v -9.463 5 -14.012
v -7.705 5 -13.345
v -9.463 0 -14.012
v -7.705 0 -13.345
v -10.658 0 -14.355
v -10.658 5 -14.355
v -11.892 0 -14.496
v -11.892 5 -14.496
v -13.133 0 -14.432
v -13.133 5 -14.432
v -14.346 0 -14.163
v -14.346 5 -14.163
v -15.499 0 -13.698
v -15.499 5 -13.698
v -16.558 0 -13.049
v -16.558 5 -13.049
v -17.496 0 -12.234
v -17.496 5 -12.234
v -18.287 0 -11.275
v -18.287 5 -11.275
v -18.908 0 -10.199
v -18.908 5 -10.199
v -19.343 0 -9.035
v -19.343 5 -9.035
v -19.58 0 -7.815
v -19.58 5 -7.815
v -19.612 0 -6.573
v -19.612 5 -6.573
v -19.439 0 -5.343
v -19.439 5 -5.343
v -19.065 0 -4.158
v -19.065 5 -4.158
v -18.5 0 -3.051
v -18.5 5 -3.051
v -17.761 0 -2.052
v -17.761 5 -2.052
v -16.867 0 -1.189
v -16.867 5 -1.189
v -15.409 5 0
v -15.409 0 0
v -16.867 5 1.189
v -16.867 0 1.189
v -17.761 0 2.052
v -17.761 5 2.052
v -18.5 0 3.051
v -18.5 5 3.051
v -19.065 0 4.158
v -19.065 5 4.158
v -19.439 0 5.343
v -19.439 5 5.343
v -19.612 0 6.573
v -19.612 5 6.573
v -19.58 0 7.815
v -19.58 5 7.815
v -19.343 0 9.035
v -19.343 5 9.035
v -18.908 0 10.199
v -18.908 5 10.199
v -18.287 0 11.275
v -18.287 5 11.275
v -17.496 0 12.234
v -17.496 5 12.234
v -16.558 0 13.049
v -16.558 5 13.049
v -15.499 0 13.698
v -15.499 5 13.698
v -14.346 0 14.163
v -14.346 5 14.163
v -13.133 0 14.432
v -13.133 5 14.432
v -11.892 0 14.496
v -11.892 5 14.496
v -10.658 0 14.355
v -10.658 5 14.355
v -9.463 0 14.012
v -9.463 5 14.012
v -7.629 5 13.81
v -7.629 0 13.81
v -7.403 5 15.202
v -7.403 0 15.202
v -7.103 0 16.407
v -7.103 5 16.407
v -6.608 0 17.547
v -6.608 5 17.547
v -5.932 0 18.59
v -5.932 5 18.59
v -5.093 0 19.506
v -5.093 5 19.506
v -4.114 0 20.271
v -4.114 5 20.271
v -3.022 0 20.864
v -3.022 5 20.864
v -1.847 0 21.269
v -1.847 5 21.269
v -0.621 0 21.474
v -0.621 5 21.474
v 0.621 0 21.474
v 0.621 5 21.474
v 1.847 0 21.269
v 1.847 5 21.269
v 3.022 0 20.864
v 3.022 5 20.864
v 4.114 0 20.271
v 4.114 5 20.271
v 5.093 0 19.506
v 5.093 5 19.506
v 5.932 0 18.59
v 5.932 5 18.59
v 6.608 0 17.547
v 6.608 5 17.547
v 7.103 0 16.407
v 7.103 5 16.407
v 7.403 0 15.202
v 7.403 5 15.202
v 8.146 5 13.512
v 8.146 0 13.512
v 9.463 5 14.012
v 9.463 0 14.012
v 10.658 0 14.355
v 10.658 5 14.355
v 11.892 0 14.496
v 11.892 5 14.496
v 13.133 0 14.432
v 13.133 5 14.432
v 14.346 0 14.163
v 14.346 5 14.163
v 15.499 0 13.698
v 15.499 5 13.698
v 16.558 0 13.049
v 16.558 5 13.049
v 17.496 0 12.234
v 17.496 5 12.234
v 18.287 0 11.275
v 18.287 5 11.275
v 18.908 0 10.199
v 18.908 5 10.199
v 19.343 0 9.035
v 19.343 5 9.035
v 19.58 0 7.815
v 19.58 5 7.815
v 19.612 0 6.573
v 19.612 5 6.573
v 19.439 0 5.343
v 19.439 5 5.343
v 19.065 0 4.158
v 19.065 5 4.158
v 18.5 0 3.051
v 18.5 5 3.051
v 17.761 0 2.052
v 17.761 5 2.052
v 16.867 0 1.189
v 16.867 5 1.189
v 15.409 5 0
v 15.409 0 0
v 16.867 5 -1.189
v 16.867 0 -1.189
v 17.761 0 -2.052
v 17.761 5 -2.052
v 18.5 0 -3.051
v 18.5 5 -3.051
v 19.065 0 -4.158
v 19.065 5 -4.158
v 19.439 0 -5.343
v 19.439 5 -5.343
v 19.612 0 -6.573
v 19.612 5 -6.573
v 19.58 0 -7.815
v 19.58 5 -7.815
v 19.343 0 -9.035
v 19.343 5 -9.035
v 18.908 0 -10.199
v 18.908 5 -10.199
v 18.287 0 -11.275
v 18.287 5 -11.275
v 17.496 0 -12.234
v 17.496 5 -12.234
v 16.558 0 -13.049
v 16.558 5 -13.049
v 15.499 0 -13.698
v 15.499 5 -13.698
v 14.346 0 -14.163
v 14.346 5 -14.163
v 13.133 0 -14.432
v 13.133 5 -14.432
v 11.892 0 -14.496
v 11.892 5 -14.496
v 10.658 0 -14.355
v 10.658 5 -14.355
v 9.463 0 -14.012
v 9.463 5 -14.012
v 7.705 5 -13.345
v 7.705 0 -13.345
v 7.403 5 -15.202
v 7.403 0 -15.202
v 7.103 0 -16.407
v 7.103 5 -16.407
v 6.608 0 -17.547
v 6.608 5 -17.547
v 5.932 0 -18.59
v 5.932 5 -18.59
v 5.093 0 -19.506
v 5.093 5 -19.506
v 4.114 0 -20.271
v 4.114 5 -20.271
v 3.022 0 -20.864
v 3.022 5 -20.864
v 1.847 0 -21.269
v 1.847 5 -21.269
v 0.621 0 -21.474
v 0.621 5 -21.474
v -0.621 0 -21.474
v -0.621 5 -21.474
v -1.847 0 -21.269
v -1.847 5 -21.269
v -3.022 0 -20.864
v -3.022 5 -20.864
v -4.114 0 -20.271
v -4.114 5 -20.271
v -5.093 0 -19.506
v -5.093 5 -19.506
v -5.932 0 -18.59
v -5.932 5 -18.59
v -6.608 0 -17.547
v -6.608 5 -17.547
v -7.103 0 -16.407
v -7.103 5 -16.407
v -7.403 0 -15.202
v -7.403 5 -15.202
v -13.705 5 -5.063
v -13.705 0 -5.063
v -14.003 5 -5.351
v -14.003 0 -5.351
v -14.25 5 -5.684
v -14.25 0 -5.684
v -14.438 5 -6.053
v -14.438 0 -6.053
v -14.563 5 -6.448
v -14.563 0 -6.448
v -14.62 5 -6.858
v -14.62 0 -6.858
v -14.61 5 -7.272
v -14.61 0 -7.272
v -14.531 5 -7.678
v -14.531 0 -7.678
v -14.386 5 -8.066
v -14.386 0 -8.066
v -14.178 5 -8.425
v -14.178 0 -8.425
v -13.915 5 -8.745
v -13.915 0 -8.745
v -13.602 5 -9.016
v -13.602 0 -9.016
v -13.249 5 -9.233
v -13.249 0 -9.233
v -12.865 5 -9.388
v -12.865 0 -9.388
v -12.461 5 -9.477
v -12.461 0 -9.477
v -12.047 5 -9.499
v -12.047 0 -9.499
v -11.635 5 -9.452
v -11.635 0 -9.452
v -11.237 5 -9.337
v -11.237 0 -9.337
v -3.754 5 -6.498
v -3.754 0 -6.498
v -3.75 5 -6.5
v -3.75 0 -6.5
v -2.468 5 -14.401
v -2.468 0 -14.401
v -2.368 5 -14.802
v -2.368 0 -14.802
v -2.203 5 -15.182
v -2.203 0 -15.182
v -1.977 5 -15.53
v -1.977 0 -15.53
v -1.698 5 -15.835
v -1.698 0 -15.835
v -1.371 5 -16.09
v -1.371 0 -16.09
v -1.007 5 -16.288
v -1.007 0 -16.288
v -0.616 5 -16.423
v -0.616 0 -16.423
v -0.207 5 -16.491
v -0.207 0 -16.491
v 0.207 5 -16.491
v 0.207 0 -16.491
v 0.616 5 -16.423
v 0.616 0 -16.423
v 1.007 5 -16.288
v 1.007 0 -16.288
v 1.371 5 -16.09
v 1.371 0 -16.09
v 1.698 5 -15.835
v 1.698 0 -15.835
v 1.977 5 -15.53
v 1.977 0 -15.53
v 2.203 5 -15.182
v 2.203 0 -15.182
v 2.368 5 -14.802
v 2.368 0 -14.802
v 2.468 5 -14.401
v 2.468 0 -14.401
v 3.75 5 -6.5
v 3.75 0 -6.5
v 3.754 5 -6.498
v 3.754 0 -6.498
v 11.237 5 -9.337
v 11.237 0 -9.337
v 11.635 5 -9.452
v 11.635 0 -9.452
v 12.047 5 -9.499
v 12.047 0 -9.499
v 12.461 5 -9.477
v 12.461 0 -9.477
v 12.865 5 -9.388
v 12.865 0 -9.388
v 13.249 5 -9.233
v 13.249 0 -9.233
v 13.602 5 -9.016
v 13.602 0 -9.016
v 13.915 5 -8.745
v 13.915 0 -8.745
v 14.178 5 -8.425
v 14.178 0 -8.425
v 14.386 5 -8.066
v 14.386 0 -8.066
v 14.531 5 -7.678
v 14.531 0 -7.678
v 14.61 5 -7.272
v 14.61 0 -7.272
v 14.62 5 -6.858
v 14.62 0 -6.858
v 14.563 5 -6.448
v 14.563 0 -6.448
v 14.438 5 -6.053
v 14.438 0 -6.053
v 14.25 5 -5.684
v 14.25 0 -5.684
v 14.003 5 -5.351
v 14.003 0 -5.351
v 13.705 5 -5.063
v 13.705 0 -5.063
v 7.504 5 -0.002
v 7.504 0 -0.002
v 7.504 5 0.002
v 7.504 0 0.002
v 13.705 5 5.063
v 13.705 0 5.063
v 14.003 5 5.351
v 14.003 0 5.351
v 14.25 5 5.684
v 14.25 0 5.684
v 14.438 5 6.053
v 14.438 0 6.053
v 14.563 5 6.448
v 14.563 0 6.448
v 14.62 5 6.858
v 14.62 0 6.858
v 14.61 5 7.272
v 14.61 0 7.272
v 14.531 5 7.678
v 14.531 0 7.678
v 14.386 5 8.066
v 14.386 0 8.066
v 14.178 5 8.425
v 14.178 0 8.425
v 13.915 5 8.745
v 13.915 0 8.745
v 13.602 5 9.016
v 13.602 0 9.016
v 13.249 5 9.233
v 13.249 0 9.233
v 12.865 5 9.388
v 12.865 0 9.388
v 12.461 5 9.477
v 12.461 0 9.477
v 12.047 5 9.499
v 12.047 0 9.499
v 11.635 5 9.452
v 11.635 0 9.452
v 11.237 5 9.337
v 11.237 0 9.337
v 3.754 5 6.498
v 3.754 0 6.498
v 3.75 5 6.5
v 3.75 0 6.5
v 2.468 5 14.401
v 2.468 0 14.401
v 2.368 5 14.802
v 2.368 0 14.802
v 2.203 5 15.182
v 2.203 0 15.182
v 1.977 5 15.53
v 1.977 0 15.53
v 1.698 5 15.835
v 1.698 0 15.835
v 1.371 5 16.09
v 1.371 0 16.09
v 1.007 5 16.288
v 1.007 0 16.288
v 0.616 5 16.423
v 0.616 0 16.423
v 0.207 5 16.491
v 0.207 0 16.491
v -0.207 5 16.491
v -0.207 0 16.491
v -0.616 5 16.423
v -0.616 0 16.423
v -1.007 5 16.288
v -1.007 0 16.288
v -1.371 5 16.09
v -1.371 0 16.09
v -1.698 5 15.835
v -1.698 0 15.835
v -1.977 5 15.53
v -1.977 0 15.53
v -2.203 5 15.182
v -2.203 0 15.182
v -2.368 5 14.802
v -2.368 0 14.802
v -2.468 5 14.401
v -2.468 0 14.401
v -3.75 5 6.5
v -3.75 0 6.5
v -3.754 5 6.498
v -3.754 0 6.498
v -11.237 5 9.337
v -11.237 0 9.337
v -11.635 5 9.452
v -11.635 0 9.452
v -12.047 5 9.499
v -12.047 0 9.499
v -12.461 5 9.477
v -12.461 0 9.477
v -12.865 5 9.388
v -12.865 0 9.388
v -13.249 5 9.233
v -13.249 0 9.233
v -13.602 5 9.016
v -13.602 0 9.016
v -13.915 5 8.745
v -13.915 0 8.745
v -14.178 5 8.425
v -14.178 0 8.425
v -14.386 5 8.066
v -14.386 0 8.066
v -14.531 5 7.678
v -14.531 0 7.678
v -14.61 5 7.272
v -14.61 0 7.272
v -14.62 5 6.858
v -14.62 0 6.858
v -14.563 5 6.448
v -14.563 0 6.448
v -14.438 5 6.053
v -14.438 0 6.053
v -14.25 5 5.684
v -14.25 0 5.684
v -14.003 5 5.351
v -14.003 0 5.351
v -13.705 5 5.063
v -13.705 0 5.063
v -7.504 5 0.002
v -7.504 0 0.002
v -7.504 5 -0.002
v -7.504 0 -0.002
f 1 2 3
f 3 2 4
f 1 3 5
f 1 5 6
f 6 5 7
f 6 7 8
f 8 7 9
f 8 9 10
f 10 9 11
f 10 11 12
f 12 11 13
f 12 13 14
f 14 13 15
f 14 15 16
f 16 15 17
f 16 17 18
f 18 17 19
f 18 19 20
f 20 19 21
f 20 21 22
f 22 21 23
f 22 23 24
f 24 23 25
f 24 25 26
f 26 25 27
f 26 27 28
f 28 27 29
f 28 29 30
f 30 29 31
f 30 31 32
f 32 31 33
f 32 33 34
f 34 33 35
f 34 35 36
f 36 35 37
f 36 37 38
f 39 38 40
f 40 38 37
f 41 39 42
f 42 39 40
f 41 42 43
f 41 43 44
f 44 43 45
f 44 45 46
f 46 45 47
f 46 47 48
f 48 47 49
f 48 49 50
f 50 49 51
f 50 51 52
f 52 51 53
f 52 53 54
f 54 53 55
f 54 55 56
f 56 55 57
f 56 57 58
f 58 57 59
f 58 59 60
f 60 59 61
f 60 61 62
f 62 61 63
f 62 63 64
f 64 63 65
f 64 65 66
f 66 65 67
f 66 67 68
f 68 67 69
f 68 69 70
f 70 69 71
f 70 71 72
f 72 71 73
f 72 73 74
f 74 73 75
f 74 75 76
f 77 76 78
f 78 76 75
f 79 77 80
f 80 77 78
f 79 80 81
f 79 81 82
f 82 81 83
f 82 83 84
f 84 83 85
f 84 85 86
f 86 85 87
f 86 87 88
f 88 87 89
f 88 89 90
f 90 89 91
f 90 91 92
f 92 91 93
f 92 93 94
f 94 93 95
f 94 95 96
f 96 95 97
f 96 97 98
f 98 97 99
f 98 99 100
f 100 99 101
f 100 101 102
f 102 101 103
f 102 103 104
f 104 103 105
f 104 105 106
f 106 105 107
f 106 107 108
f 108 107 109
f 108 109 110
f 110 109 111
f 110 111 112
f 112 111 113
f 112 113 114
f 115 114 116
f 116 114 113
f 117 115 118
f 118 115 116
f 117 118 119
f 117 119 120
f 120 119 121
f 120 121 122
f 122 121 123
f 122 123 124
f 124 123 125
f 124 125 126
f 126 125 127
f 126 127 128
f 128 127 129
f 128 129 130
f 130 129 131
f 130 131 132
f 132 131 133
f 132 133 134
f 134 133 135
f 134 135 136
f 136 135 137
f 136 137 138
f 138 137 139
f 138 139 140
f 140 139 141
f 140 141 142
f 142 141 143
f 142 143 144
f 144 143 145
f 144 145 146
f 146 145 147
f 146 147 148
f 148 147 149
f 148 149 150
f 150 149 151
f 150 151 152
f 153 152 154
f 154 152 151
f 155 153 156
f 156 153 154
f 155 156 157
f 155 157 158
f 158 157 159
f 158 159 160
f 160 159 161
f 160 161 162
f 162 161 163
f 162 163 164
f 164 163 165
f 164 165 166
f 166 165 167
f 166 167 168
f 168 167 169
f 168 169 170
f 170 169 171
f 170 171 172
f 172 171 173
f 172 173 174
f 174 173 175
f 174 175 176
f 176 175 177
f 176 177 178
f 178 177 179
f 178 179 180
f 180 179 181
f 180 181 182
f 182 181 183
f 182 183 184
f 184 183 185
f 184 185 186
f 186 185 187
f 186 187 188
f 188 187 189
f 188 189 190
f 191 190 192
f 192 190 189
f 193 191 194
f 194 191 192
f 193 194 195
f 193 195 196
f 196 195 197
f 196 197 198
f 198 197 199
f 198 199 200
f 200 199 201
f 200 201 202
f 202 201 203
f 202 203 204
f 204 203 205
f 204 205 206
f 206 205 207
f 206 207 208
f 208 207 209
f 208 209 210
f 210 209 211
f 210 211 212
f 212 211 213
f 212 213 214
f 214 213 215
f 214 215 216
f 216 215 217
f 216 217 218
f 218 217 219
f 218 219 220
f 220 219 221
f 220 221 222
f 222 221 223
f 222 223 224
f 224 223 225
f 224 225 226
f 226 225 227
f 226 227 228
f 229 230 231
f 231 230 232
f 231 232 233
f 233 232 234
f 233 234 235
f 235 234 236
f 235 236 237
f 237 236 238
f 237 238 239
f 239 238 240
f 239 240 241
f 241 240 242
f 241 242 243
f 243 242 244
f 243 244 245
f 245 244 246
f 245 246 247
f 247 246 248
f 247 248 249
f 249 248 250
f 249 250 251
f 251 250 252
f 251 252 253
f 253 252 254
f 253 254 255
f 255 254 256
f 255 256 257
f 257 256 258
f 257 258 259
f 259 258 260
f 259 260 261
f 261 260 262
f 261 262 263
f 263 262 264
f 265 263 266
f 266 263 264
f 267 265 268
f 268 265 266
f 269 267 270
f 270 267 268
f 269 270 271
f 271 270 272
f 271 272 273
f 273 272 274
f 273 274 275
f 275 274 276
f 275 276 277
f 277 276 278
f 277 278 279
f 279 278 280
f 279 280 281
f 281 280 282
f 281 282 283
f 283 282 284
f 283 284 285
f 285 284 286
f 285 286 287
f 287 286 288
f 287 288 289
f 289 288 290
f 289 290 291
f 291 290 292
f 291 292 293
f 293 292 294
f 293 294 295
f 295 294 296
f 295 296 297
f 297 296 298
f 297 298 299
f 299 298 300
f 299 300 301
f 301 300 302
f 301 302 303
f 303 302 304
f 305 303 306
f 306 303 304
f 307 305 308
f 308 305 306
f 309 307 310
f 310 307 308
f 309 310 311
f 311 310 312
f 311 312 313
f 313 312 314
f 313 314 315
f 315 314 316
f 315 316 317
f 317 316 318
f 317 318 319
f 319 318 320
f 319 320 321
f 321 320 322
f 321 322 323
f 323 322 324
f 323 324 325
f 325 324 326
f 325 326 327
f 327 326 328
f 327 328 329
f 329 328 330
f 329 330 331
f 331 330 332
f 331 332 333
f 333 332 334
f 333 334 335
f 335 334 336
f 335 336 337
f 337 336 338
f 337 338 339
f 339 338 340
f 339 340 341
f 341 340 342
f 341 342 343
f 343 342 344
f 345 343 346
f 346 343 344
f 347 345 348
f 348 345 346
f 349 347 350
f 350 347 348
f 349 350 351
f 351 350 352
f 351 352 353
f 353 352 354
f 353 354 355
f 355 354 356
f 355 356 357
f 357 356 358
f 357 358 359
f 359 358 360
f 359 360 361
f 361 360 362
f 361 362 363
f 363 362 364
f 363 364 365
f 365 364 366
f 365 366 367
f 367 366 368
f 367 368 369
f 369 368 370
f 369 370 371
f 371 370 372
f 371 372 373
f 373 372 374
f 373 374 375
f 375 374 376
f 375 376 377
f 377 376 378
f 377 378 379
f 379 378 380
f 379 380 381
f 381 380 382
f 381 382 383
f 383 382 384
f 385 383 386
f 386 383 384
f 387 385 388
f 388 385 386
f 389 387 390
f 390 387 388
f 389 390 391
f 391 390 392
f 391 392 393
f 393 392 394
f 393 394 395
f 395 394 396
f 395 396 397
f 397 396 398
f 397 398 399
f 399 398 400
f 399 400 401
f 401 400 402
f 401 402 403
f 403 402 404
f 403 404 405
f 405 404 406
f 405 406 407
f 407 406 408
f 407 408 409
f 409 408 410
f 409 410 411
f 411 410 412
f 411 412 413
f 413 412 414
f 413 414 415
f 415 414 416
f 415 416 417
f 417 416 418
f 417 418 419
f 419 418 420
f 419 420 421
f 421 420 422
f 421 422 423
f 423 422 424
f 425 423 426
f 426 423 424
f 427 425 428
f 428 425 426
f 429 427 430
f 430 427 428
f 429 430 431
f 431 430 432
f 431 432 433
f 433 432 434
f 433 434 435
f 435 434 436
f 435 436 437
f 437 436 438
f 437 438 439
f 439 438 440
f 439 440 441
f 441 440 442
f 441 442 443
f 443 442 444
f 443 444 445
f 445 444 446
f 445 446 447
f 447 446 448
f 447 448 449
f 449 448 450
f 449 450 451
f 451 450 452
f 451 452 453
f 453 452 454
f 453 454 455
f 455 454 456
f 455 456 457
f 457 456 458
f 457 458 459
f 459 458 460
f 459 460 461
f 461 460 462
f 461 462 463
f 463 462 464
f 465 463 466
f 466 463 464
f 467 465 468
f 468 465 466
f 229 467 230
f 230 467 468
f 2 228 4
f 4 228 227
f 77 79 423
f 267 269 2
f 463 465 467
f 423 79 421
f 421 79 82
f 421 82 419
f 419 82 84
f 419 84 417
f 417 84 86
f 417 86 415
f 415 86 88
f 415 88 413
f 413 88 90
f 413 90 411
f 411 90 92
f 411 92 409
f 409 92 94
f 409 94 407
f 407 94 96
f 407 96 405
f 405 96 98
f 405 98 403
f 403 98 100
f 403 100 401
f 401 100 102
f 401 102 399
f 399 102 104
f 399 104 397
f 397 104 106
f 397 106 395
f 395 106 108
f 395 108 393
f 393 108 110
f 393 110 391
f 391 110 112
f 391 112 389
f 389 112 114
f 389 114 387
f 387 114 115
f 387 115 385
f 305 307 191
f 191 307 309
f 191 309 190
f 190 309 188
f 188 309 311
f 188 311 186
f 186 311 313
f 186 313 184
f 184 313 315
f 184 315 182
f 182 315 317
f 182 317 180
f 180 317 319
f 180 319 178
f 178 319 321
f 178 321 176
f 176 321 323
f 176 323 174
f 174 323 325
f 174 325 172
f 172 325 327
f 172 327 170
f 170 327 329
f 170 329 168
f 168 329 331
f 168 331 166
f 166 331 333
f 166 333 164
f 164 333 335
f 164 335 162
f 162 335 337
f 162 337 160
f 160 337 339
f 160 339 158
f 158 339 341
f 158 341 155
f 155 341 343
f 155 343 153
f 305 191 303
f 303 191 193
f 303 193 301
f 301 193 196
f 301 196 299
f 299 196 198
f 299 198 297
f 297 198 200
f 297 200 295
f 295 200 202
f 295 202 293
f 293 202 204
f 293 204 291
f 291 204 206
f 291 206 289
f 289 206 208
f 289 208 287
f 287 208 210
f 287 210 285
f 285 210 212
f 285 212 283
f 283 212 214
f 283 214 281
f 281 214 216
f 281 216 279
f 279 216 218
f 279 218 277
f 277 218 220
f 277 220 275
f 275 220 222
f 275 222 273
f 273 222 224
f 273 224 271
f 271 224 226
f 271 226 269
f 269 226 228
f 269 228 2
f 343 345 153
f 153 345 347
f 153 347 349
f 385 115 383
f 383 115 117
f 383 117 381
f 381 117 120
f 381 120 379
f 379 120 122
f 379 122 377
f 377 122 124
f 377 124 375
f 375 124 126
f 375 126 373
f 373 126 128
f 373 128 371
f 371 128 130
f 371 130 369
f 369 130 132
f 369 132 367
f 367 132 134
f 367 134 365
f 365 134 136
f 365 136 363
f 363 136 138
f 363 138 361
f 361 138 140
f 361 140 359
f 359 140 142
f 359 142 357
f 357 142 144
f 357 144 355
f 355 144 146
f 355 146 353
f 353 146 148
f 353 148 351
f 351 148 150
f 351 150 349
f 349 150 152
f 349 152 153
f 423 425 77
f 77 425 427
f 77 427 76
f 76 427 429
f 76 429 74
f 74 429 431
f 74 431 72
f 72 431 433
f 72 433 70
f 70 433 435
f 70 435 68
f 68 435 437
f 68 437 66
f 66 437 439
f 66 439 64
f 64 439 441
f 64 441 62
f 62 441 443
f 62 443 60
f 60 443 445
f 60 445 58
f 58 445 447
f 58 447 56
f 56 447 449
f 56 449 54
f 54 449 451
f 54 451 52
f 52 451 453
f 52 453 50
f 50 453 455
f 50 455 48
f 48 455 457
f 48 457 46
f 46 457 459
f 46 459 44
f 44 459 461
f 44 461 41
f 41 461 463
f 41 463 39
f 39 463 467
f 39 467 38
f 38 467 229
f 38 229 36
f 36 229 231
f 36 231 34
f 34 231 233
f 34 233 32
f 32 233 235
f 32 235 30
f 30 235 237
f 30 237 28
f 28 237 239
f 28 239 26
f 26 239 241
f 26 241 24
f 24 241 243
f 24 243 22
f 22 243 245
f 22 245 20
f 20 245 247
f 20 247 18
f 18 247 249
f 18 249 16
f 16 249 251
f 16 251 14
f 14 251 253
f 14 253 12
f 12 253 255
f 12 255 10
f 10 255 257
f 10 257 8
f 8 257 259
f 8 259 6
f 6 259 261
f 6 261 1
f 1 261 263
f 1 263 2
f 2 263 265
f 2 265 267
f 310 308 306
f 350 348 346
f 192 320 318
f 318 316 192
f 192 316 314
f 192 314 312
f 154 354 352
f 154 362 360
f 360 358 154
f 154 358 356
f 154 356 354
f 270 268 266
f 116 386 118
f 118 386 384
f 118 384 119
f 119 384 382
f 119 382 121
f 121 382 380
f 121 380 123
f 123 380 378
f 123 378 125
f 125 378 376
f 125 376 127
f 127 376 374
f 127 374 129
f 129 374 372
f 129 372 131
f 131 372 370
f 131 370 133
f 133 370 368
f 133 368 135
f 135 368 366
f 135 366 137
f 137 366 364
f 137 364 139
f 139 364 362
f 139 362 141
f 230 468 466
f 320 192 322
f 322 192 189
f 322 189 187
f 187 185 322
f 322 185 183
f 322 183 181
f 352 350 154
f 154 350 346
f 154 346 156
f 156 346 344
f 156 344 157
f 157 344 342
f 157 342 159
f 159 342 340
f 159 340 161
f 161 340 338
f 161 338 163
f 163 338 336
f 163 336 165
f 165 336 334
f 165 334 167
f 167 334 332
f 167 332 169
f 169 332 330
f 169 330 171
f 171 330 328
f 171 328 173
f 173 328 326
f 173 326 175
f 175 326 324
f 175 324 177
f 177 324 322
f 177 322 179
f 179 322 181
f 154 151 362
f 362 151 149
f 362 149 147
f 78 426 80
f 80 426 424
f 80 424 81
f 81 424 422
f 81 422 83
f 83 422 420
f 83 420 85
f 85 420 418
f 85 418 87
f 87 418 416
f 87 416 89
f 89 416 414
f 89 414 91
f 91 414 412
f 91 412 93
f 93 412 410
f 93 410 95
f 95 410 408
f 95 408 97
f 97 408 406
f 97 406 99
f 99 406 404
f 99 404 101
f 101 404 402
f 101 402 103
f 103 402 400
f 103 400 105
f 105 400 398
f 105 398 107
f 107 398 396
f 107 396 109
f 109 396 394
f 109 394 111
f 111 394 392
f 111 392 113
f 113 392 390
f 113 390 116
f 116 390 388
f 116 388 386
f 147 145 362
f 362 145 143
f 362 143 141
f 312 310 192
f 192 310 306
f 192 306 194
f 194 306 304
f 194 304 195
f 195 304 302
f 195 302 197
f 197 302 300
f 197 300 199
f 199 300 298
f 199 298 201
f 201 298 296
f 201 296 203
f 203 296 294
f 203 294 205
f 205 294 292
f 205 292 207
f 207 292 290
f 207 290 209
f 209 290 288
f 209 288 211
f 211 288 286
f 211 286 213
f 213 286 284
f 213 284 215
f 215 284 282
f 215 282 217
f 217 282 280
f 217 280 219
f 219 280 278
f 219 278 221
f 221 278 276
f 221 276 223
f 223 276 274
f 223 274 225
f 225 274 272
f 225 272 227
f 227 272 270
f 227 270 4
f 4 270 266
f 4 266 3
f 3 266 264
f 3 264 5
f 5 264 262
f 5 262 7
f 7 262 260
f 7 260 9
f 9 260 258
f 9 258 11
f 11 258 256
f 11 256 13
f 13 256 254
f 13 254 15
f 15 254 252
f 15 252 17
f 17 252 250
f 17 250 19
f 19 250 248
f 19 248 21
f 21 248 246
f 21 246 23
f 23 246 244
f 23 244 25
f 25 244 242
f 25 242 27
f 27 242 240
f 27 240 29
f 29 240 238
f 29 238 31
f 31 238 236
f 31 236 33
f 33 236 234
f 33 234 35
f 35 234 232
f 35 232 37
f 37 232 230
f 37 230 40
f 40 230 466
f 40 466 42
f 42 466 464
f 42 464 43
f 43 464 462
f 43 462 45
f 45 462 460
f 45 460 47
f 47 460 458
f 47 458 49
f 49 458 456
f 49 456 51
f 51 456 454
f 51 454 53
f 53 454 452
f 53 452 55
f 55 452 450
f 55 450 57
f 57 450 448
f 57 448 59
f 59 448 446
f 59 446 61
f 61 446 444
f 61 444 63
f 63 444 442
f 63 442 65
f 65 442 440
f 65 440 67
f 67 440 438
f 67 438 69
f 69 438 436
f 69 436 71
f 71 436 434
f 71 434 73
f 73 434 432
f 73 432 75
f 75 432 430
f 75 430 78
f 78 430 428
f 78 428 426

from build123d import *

# Parameters (mm, degrees)
BOSS_EXTRUDE1_DEPTH = 5


with BuildPart() as part:
    # Sketch1 → Boss-Extrude1 (new body)
    with BuildSketch(Plane(origin=(0, 0, 0), x_dir=(1, 0, 0), z_dir=(0, 1, 0))):
        with BuildLine():
            Line((-9.463376853, 14.012074716), (-7.70451588, 13.344612952))
            Line((-7.70451588, 13.344612952), (-7.403124237, 15.201562119))
            ThreePointArc((-7.403124237, 15.201562119), (0, 21.5), (7.403124237, 15.201562119))
            Line((7.403124237, 15.201562119), (7.70451588, 13.344612952))
            Line((7.70451588, 13.344612952), (9.463376853, 14.012074716))
            ThreePointArc((9.463376853, 14.012074716), (18.619546181, 10.75), (16.866501091, 1.189487402))
            Line((16.866501091, 1.189487402), (15.40903176, 0))
            Line((15.40903176, 0), (16.866501091, -1.189487402))
            ThreePointArc((16.866501091, -1.189487402), (18.619546181, -10.75), (9.463376853, -14.012074716))
            Line((9.463376853, -14.012074716), (8.145790319, -13.512070085))
            Line((8.145790319, -13.512070085), (7.403124237, -15.201562119))
            ThreePointArc((7.403124237, -15.201562119), (0, -21.5), (-7.403124237, -15.201562119))
            Line((-7.403124237, -15.201562119), (-7.630525703, -13.800484906))
            Line((-7.630525703, -13.800484906), (-9.463376853, -14.012074716))
            ThreePointArc((-9.463376853, -14.012074716), (-18.619546181, -10.75), (-16.866501091, -1.189487402))
            Line((-16.866501091, -1.189487402), (-15.40903176, 0))
            Line((-15.40903176, 0), (-16.866501091, 1.189487402))
            ThreePointArc((-16.866501091, 1.189487402), (-18.619546181, 10.75), (-9.463376853, 14.012074716))
        make_face()
        with BuildLine():
            ThreePointArc((-11.23736272, 9.337358239), (-14.289419162, 8.25), (-13.705070799, 5.063162467))
            Line((-13.705070799, 5.063162467), (-7.504165125, 0.002404736))
            Line((-7.504165125, 0.002404736), (-7.504165125, -0.002404736))
            Line((-7.504165125, -0.002404736), (-13.705070799, -5.063162467))
            ThreePointArc((-13.705070799, -5.063162467), (-14.289419162, -8.25), (-11.23736272, -9.337358239))
            Line((-11.23736272, -9.337358239), (-3.754165125, -6.497595264))
            Line((-3.754165125, -6.497595264), (-3.75, -6.5))
            Line((-3.75, -6.5), (-2.467708079, -14.400520706))
            ThreePointArc((-2.467708079, -14.400520706), (0, -16.5), (2.467708079, -14.400520706))
            Line((2.467708079, -14.400520706), (3.75, -6.5))
            Line((3.75, -6.5), (3.754165125, -6.497595264))
            Line((3.754165125, -6.497595264), (11.23736272, -9.337358239))
            ThreePointArc((11.23736272, -9.337358239), (14.289419162, -8.25), (13.705070799, -5.063162467))
            Line((13.705070799, -5.063162467), (7.504165125, -0.002404736))
            Line((7.504165125, -0.002404736), (7.504165125, 0.002404736))
            Line((7.504165125, 0.002404736), (13.705070799, 5.063162467))
            ThreePointArc((13.705070799, 5.063162467), (14.289419162, 8.25), (11.23736272, 9.337358239))
            Line((11.23736272, 9.337358239), (3.754165125, 6.497595264))
            Line((3.754165125, 6.497595264), (3.75, 6.5))
            Line((3.75, 6.5), (2.467708079, 14.400520706))
            ThreePointArc((2.467708079, 14.400520706), (0, 16.5), (-2.467708079, 14.400520706))
            Line((-2.467708079, 14.400520706), (-3.75, 6.5))
            Line((-3.75, 6.5), (-3.754165125, 6.497595264))
            Line((-3.754165125, 6.497595264), (-11.23736272, 9.337358239))
        make_face(mode=Mode.SUBTRACT)
    extrude(amount=BOSS_EXTRUDE1_DEPTH)


solid = part.part
